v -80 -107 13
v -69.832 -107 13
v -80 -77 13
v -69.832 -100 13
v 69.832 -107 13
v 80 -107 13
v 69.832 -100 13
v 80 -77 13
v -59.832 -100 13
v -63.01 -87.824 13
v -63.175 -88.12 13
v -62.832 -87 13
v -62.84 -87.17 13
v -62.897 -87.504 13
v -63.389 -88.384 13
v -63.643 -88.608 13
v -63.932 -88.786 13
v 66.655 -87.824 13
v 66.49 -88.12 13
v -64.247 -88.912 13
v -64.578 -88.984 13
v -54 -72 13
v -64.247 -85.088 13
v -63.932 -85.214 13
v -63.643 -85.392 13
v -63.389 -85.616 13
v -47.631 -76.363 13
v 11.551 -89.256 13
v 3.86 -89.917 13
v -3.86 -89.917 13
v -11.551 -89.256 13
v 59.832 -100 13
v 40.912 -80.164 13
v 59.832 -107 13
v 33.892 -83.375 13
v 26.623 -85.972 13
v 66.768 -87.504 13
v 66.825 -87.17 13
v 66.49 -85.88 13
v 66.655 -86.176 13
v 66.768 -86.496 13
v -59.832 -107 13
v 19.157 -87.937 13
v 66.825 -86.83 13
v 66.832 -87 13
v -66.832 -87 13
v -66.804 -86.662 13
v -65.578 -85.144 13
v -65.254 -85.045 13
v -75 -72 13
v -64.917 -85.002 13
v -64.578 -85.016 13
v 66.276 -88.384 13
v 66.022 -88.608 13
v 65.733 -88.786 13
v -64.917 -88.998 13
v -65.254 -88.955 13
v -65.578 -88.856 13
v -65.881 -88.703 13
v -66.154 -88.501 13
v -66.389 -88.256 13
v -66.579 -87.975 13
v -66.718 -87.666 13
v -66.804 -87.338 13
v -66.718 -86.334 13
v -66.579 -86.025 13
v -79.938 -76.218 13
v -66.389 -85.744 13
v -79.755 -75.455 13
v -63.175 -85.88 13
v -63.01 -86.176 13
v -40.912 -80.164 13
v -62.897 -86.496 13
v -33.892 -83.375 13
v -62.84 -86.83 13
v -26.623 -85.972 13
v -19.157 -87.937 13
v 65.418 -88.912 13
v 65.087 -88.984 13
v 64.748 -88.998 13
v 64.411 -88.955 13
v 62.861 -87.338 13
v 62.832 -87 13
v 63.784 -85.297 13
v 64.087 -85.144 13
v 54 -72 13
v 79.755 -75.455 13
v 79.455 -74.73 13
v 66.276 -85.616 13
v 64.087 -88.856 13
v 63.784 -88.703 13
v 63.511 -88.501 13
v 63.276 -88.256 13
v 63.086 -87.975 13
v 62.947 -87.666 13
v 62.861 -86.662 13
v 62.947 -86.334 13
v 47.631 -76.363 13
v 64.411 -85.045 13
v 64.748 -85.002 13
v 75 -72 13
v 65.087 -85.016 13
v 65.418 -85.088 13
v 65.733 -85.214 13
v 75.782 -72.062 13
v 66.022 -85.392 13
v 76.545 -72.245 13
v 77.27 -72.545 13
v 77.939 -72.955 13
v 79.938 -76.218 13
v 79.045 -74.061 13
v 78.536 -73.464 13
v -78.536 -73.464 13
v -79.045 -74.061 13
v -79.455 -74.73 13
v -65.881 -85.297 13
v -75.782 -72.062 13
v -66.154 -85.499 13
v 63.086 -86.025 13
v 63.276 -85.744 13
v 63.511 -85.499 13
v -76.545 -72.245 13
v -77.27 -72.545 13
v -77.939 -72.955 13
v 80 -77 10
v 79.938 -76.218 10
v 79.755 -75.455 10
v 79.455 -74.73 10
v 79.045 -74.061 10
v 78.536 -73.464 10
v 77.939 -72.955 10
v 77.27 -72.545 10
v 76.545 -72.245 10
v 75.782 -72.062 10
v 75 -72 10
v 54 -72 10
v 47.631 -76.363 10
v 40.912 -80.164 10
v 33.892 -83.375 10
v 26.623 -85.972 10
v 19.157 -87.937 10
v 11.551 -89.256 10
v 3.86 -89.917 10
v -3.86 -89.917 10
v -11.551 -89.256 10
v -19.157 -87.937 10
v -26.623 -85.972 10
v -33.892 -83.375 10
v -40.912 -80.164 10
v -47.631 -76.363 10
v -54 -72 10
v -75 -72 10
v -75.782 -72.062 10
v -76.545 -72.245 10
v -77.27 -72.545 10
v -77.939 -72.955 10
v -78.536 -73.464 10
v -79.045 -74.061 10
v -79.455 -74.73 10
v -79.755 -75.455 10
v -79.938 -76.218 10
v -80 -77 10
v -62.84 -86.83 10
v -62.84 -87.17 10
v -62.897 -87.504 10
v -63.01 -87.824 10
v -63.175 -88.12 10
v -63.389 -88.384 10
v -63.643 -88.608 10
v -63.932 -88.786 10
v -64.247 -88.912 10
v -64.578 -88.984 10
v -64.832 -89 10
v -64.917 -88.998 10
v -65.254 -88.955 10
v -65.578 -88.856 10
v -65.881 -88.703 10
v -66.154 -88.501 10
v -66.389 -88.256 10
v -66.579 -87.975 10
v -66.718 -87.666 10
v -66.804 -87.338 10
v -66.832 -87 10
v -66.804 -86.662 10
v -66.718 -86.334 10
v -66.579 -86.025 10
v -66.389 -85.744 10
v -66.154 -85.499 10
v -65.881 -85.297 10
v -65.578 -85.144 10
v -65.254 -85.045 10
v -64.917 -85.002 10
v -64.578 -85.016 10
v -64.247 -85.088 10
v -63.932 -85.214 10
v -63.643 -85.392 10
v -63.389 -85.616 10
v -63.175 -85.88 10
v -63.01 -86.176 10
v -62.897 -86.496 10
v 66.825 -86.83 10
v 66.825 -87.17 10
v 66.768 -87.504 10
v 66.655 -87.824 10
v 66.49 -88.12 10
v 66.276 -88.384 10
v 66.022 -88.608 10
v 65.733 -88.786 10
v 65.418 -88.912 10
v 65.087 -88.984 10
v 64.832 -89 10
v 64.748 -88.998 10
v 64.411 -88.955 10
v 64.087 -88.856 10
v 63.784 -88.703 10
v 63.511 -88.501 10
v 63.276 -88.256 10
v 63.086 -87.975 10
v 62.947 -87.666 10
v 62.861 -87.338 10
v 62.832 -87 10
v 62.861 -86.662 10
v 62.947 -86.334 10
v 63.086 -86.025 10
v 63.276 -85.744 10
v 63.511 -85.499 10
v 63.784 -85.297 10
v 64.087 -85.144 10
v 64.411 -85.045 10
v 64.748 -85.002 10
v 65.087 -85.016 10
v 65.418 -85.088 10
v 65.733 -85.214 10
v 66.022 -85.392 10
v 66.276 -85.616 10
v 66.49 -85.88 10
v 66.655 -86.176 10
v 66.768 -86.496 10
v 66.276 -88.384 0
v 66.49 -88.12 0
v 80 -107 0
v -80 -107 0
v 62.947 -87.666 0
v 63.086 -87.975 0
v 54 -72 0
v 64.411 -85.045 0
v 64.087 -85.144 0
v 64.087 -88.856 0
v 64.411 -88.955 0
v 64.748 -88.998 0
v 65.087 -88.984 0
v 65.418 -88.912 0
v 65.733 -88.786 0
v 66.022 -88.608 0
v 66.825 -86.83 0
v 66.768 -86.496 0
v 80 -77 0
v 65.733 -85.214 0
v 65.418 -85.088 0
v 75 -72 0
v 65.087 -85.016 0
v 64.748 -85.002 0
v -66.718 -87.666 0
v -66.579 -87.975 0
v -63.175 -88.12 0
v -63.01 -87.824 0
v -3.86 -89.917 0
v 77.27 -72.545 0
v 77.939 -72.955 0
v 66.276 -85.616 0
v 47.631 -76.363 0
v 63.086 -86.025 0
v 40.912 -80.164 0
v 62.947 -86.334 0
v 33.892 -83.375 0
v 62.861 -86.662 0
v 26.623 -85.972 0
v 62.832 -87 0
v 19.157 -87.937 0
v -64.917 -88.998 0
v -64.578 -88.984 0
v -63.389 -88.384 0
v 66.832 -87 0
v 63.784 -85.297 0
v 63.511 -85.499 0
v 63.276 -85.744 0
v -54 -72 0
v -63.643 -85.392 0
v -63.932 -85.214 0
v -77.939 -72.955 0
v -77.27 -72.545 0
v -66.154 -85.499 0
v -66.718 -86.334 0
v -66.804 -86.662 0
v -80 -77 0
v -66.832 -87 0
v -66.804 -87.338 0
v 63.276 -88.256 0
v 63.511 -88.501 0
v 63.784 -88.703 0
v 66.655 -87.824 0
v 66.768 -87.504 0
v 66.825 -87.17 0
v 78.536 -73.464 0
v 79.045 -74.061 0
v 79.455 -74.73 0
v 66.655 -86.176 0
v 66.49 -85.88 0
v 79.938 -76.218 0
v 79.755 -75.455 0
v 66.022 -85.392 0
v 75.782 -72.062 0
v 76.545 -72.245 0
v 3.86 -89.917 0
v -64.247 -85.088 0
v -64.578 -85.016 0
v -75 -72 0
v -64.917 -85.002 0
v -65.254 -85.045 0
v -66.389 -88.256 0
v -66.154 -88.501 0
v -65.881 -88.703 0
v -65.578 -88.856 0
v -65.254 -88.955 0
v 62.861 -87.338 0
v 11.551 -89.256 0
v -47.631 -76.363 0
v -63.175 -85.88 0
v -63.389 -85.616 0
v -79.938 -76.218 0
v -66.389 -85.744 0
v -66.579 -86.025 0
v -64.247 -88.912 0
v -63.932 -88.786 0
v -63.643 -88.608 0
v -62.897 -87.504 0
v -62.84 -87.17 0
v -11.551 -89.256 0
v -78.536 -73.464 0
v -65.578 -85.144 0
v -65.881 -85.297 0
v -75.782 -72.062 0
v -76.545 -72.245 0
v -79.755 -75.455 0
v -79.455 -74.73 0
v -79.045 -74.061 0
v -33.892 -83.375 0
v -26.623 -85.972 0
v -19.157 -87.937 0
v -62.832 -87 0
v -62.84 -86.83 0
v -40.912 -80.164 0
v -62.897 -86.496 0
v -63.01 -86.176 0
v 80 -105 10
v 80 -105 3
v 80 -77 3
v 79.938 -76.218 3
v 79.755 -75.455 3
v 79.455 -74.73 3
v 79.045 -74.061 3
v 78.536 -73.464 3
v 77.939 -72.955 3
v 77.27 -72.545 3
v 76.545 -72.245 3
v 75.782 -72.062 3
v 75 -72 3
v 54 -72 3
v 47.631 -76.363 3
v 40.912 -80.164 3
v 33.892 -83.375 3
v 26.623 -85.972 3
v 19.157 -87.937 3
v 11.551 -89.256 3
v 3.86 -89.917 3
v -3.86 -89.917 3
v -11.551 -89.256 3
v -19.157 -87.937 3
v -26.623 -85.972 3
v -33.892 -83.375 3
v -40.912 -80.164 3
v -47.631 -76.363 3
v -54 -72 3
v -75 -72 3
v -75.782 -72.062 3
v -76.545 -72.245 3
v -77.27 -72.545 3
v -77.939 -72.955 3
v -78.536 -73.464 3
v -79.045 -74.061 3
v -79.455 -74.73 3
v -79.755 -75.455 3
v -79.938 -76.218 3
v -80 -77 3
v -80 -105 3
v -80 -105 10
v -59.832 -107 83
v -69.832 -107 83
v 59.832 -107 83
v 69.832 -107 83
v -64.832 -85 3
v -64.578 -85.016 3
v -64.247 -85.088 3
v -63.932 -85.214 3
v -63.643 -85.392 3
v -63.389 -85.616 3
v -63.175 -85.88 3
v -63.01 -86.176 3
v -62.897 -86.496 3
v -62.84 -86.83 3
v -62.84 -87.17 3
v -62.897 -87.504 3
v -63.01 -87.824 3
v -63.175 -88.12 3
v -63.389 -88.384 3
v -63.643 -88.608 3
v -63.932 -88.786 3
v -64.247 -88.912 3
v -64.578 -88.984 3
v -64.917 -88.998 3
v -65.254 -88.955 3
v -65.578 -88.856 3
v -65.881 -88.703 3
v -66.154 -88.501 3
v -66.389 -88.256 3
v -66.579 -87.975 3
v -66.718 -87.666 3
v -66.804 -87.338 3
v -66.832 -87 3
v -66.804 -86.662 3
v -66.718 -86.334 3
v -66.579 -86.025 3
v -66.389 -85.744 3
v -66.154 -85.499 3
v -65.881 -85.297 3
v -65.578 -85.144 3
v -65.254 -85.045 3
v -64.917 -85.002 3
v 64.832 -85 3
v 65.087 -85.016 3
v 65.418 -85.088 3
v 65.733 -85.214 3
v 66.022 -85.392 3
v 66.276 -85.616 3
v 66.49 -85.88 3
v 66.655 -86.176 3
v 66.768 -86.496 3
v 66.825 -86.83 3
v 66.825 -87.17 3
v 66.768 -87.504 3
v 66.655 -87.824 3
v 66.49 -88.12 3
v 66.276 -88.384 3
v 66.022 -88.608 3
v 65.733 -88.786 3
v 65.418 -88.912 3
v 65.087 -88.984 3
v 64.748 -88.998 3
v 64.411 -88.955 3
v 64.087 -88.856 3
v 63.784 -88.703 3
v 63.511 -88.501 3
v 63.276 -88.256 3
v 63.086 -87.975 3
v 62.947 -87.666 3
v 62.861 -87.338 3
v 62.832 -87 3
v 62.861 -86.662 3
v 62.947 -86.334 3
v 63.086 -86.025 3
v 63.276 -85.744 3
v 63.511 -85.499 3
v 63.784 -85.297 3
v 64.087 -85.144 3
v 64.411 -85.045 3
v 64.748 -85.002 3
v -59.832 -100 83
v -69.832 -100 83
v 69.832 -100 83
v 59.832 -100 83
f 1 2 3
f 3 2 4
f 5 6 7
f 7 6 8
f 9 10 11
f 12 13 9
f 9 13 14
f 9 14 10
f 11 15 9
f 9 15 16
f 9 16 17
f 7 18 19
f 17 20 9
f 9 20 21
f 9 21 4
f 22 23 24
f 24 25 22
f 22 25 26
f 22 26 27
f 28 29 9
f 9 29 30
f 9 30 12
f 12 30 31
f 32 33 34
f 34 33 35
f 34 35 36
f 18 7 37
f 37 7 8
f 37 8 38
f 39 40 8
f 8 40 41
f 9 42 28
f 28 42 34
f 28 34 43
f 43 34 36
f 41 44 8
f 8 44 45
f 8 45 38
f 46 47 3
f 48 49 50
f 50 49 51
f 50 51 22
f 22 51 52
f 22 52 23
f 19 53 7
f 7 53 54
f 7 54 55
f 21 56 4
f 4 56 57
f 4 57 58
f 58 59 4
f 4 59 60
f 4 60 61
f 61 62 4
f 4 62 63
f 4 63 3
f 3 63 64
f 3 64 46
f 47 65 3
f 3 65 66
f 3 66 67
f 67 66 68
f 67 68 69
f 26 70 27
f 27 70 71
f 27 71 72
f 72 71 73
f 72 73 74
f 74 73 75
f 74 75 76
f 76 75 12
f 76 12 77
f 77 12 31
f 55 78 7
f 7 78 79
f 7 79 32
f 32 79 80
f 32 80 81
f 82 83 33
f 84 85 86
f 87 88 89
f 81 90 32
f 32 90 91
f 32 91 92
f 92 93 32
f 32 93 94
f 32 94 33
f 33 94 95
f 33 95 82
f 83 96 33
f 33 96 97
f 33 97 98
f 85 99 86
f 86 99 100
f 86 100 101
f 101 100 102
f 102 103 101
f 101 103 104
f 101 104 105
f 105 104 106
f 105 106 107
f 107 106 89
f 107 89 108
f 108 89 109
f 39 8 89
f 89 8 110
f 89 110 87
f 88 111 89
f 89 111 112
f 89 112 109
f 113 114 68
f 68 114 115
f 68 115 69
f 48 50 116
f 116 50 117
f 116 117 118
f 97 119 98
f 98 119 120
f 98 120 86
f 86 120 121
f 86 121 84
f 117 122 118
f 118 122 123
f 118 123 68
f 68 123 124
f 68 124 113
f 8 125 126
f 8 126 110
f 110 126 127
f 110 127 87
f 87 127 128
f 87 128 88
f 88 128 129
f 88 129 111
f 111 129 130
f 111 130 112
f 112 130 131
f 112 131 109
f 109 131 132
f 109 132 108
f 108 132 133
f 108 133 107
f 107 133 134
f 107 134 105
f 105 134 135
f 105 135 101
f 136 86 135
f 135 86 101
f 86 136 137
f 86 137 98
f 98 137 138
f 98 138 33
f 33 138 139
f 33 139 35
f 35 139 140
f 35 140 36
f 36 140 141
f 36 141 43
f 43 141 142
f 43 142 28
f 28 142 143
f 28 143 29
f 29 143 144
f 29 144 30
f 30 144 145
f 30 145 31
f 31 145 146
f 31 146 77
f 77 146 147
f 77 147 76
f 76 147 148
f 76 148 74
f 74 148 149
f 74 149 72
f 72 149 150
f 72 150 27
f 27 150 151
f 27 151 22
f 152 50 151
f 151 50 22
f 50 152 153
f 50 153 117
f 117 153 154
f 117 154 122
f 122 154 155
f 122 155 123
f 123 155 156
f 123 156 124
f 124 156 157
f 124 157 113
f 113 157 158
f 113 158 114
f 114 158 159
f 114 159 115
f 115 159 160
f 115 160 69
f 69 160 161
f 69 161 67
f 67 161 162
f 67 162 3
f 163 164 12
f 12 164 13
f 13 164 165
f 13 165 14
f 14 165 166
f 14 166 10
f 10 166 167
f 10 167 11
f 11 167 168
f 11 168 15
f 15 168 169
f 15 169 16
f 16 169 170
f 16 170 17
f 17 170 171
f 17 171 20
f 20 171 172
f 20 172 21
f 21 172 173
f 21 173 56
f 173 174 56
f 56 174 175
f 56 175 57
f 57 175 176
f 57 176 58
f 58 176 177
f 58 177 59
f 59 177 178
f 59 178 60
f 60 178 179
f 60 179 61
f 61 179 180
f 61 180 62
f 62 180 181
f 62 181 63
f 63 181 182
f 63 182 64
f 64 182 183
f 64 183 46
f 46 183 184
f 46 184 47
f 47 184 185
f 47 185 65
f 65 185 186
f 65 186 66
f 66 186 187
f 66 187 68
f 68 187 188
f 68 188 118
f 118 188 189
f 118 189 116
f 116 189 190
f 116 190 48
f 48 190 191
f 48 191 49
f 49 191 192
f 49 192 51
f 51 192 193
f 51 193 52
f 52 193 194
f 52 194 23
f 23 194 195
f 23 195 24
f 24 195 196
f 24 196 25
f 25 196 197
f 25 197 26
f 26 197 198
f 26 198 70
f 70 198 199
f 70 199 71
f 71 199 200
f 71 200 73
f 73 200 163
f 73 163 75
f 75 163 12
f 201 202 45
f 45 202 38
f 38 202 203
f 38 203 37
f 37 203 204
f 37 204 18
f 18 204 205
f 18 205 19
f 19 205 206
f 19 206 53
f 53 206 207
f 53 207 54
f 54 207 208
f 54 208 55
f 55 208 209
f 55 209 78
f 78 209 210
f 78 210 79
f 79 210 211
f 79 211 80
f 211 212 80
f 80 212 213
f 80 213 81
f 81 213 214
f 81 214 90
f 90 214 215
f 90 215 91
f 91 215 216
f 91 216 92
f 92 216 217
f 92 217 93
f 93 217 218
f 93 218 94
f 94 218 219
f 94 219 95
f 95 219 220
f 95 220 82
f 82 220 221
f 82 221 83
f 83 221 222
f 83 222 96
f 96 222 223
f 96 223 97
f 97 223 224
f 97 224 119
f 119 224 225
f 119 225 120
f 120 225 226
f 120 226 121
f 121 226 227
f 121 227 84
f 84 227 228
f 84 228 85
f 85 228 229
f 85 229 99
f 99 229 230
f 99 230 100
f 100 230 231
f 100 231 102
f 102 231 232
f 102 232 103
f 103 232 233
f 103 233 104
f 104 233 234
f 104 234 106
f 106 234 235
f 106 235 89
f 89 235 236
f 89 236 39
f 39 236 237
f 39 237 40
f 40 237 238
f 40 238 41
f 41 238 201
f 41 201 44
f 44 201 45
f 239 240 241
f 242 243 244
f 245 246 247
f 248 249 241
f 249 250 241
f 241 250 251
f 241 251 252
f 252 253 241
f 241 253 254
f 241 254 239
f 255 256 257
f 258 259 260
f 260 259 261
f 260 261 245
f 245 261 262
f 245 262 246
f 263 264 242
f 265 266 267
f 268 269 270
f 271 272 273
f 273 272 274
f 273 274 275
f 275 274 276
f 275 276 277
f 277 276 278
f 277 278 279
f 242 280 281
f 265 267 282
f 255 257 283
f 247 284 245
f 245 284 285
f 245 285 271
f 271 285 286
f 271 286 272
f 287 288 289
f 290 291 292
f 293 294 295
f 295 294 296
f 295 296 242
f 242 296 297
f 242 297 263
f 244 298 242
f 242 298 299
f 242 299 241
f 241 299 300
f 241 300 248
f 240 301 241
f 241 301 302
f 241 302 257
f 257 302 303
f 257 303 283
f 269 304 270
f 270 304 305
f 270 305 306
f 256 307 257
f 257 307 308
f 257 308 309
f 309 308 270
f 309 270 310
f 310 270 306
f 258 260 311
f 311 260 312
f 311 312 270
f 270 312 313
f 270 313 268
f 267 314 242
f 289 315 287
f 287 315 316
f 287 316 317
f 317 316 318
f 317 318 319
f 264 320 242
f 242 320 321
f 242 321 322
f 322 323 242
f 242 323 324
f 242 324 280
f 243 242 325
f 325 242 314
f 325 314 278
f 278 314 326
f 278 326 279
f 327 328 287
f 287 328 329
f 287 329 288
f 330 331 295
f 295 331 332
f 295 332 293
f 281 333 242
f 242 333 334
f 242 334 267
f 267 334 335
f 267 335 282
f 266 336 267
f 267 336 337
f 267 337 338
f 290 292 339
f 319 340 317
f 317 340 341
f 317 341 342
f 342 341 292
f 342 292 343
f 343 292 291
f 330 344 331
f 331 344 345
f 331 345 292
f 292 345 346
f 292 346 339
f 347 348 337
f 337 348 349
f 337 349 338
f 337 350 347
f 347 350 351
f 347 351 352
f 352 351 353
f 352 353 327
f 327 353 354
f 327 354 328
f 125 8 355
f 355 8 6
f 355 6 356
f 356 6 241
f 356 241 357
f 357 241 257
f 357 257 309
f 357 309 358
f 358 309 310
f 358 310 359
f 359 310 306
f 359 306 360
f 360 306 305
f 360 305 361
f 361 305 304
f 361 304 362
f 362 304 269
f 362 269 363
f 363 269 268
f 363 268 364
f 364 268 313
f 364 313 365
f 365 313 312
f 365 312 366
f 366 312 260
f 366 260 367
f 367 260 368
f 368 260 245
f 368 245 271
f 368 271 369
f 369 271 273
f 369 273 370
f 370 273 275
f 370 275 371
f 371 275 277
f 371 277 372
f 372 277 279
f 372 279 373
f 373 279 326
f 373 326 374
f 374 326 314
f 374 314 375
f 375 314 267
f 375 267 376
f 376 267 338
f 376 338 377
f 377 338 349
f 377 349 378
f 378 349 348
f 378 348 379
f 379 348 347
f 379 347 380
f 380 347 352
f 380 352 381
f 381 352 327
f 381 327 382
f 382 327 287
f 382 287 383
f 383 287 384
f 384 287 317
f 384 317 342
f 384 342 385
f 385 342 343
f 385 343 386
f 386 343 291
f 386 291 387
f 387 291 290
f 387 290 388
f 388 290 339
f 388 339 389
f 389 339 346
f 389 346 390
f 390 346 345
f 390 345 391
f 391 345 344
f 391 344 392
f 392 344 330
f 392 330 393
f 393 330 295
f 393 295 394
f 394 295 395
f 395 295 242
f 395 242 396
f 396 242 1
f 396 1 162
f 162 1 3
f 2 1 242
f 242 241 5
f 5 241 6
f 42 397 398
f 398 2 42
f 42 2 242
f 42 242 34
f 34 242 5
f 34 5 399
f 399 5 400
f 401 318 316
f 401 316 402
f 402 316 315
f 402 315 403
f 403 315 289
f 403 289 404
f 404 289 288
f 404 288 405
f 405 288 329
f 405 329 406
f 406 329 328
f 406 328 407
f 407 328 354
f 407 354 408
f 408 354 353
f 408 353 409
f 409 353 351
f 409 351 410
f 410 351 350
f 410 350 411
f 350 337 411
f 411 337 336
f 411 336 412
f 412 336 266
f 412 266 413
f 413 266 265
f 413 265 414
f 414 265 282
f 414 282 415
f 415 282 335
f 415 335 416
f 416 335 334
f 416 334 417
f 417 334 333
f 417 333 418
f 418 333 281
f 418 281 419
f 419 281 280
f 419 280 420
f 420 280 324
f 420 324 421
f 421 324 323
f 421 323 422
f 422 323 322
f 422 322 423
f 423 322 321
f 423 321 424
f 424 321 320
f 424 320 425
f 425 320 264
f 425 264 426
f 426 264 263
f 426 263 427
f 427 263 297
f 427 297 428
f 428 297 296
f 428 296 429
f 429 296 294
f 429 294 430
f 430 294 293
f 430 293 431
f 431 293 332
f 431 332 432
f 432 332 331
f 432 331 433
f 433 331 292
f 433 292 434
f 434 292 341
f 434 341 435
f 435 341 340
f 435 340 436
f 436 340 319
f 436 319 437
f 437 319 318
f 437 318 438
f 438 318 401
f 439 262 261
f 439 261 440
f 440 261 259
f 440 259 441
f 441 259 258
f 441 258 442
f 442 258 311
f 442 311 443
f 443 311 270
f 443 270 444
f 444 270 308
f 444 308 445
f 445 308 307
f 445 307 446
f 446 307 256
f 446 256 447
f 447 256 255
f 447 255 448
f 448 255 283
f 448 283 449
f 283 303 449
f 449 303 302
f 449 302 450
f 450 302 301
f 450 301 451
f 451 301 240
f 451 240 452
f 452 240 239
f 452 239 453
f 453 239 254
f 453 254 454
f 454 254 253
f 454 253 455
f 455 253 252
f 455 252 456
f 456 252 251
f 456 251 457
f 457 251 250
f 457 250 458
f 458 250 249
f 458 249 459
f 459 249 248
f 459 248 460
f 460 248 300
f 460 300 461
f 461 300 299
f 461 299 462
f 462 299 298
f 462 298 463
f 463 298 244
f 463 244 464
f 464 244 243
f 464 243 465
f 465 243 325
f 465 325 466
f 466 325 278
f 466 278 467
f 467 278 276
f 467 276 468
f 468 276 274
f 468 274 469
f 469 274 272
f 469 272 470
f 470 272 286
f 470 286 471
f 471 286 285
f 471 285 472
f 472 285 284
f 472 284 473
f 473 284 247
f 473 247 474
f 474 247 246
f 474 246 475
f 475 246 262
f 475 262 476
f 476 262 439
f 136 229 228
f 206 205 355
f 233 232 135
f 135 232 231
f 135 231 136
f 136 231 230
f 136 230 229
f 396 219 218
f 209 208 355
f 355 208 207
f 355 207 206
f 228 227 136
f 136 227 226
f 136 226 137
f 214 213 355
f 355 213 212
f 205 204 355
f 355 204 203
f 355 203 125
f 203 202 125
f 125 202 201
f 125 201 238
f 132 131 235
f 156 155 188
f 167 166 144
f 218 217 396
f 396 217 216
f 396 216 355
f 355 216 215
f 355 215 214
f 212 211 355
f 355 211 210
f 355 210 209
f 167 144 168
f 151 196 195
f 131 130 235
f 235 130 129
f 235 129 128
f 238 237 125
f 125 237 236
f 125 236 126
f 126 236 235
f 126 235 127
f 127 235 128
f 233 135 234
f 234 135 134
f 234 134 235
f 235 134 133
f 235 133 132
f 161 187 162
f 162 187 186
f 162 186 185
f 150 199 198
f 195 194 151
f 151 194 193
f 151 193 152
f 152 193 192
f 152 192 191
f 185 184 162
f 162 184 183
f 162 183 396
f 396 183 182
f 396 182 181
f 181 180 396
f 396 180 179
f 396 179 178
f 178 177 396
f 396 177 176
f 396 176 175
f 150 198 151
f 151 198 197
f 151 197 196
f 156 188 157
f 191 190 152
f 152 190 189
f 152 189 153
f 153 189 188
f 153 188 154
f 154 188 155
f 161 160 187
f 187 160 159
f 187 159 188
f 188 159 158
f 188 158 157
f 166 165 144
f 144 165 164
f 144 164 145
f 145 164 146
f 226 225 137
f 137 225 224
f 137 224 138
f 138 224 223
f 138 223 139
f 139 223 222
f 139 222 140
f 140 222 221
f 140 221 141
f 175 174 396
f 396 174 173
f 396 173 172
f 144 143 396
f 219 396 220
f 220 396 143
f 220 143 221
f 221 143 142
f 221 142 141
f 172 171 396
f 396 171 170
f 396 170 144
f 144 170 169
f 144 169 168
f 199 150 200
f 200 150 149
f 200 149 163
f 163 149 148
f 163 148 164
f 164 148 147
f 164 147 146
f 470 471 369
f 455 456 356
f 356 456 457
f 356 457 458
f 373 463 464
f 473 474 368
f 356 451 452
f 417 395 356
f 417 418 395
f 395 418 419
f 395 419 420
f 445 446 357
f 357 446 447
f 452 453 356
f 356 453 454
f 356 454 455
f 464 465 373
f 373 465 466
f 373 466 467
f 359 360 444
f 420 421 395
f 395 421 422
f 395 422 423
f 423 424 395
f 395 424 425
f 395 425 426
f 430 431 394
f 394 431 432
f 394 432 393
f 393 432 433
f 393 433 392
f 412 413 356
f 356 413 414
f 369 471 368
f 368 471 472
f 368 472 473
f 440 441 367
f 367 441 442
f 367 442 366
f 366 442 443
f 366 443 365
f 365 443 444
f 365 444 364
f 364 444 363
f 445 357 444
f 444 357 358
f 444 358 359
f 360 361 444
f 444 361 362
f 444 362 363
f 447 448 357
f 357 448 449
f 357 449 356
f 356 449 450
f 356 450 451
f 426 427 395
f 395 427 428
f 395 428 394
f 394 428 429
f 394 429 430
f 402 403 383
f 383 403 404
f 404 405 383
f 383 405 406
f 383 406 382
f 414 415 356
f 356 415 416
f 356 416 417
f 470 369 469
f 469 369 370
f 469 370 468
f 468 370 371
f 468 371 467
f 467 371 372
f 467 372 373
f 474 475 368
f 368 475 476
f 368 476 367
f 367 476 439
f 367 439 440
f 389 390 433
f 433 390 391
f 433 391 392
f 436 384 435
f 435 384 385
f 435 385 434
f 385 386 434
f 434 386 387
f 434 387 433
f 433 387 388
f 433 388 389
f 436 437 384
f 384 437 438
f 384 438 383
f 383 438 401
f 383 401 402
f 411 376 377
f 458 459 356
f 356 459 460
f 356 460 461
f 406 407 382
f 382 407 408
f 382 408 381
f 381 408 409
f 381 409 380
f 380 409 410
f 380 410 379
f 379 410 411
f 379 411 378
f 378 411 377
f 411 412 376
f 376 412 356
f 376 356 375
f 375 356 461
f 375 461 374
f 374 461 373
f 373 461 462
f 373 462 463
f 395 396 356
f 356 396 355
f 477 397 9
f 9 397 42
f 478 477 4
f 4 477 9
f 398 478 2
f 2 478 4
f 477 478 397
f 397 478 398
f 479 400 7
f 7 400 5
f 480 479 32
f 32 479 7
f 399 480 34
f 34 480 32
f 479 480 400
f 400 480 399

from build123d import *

# Parameters (mm, degrees)
SKETCH_1_R          = 2
EXTRUDE_1_DEPTH     = 13
SKETCH_2_W          = 7
SKETCH_2_H          = 34.84138361
CUT_EXTRUDE_1_DEPTH = 193.919672403
SKETCH_3_W          = 10
SKETCH_3_H          = 7
EXTRUDE_2_DEPTH     = 70


with BuildPart() as part:
    # 草图1 → 凸台-拉伸1 (new body)
    with BuildSketch(Plane.XY):
        with BuildLine():
            Line((54, -72), (75, -72))
            ThreePointArc((75, -72), (78.535533906, -73.464466094), (80, -77))
            Line((80, -77), (80, -107))
            Line((80, -107), (-80, -107))
            Line((-80, -107), (-80, -77))
            ThreePointArc((-80, -77), (-78.535533906, -73.464466094), (-75, -72))
            Line((-75, -72), (-54, -72))
            ThreePointArc((-54, -72), (0, -90), (54, -72))
        make_face()
        with Locations(Location((-64.83247643, -87, 0), (0, 0, 180))):
            Circle(SKETCH_1_R, mode=Mode.SUBTRACT)
        with Locations(Location((64.83247643, -87, 0), (0, 0, 180))):
            Circle(SKETCH_1_R, mode=Mode.SUBTRACT)
    extrude(amount=EXTRUDE_1_DEPTH)

    # 草图2 → 切除-拉伸1 (cut, through all)
    with BuildSketch(Plane(origin=(80, 0, 0), x_dir=(0, 0, -1), z_dir=(1, 0, 0))):
        with Locations((-6.5, -87.579308195)):
            Rectangle(SKETCH_2_W, SKETCH_2_H)
    extrude(amount=-CUT_EXTRUDE_1_DEPTH, mode=Mode.SUBTRACT)

    # 草图3 → 凸台-拉伸2 (add)
    with BuildSketch(Plane.XY.offset(13)):
        with Locations((-64.83247643, -103.5)):
            Rectangle(SKETCH_3_W, SKETCH_3_H)
        with Locations((64.83247643, -103.5)):
            Rectangle(SKETCH_3_W, SKETCH_3_H)
    extrude(amount=EXTRUDE_2_DEPTH)


solid = part.part
